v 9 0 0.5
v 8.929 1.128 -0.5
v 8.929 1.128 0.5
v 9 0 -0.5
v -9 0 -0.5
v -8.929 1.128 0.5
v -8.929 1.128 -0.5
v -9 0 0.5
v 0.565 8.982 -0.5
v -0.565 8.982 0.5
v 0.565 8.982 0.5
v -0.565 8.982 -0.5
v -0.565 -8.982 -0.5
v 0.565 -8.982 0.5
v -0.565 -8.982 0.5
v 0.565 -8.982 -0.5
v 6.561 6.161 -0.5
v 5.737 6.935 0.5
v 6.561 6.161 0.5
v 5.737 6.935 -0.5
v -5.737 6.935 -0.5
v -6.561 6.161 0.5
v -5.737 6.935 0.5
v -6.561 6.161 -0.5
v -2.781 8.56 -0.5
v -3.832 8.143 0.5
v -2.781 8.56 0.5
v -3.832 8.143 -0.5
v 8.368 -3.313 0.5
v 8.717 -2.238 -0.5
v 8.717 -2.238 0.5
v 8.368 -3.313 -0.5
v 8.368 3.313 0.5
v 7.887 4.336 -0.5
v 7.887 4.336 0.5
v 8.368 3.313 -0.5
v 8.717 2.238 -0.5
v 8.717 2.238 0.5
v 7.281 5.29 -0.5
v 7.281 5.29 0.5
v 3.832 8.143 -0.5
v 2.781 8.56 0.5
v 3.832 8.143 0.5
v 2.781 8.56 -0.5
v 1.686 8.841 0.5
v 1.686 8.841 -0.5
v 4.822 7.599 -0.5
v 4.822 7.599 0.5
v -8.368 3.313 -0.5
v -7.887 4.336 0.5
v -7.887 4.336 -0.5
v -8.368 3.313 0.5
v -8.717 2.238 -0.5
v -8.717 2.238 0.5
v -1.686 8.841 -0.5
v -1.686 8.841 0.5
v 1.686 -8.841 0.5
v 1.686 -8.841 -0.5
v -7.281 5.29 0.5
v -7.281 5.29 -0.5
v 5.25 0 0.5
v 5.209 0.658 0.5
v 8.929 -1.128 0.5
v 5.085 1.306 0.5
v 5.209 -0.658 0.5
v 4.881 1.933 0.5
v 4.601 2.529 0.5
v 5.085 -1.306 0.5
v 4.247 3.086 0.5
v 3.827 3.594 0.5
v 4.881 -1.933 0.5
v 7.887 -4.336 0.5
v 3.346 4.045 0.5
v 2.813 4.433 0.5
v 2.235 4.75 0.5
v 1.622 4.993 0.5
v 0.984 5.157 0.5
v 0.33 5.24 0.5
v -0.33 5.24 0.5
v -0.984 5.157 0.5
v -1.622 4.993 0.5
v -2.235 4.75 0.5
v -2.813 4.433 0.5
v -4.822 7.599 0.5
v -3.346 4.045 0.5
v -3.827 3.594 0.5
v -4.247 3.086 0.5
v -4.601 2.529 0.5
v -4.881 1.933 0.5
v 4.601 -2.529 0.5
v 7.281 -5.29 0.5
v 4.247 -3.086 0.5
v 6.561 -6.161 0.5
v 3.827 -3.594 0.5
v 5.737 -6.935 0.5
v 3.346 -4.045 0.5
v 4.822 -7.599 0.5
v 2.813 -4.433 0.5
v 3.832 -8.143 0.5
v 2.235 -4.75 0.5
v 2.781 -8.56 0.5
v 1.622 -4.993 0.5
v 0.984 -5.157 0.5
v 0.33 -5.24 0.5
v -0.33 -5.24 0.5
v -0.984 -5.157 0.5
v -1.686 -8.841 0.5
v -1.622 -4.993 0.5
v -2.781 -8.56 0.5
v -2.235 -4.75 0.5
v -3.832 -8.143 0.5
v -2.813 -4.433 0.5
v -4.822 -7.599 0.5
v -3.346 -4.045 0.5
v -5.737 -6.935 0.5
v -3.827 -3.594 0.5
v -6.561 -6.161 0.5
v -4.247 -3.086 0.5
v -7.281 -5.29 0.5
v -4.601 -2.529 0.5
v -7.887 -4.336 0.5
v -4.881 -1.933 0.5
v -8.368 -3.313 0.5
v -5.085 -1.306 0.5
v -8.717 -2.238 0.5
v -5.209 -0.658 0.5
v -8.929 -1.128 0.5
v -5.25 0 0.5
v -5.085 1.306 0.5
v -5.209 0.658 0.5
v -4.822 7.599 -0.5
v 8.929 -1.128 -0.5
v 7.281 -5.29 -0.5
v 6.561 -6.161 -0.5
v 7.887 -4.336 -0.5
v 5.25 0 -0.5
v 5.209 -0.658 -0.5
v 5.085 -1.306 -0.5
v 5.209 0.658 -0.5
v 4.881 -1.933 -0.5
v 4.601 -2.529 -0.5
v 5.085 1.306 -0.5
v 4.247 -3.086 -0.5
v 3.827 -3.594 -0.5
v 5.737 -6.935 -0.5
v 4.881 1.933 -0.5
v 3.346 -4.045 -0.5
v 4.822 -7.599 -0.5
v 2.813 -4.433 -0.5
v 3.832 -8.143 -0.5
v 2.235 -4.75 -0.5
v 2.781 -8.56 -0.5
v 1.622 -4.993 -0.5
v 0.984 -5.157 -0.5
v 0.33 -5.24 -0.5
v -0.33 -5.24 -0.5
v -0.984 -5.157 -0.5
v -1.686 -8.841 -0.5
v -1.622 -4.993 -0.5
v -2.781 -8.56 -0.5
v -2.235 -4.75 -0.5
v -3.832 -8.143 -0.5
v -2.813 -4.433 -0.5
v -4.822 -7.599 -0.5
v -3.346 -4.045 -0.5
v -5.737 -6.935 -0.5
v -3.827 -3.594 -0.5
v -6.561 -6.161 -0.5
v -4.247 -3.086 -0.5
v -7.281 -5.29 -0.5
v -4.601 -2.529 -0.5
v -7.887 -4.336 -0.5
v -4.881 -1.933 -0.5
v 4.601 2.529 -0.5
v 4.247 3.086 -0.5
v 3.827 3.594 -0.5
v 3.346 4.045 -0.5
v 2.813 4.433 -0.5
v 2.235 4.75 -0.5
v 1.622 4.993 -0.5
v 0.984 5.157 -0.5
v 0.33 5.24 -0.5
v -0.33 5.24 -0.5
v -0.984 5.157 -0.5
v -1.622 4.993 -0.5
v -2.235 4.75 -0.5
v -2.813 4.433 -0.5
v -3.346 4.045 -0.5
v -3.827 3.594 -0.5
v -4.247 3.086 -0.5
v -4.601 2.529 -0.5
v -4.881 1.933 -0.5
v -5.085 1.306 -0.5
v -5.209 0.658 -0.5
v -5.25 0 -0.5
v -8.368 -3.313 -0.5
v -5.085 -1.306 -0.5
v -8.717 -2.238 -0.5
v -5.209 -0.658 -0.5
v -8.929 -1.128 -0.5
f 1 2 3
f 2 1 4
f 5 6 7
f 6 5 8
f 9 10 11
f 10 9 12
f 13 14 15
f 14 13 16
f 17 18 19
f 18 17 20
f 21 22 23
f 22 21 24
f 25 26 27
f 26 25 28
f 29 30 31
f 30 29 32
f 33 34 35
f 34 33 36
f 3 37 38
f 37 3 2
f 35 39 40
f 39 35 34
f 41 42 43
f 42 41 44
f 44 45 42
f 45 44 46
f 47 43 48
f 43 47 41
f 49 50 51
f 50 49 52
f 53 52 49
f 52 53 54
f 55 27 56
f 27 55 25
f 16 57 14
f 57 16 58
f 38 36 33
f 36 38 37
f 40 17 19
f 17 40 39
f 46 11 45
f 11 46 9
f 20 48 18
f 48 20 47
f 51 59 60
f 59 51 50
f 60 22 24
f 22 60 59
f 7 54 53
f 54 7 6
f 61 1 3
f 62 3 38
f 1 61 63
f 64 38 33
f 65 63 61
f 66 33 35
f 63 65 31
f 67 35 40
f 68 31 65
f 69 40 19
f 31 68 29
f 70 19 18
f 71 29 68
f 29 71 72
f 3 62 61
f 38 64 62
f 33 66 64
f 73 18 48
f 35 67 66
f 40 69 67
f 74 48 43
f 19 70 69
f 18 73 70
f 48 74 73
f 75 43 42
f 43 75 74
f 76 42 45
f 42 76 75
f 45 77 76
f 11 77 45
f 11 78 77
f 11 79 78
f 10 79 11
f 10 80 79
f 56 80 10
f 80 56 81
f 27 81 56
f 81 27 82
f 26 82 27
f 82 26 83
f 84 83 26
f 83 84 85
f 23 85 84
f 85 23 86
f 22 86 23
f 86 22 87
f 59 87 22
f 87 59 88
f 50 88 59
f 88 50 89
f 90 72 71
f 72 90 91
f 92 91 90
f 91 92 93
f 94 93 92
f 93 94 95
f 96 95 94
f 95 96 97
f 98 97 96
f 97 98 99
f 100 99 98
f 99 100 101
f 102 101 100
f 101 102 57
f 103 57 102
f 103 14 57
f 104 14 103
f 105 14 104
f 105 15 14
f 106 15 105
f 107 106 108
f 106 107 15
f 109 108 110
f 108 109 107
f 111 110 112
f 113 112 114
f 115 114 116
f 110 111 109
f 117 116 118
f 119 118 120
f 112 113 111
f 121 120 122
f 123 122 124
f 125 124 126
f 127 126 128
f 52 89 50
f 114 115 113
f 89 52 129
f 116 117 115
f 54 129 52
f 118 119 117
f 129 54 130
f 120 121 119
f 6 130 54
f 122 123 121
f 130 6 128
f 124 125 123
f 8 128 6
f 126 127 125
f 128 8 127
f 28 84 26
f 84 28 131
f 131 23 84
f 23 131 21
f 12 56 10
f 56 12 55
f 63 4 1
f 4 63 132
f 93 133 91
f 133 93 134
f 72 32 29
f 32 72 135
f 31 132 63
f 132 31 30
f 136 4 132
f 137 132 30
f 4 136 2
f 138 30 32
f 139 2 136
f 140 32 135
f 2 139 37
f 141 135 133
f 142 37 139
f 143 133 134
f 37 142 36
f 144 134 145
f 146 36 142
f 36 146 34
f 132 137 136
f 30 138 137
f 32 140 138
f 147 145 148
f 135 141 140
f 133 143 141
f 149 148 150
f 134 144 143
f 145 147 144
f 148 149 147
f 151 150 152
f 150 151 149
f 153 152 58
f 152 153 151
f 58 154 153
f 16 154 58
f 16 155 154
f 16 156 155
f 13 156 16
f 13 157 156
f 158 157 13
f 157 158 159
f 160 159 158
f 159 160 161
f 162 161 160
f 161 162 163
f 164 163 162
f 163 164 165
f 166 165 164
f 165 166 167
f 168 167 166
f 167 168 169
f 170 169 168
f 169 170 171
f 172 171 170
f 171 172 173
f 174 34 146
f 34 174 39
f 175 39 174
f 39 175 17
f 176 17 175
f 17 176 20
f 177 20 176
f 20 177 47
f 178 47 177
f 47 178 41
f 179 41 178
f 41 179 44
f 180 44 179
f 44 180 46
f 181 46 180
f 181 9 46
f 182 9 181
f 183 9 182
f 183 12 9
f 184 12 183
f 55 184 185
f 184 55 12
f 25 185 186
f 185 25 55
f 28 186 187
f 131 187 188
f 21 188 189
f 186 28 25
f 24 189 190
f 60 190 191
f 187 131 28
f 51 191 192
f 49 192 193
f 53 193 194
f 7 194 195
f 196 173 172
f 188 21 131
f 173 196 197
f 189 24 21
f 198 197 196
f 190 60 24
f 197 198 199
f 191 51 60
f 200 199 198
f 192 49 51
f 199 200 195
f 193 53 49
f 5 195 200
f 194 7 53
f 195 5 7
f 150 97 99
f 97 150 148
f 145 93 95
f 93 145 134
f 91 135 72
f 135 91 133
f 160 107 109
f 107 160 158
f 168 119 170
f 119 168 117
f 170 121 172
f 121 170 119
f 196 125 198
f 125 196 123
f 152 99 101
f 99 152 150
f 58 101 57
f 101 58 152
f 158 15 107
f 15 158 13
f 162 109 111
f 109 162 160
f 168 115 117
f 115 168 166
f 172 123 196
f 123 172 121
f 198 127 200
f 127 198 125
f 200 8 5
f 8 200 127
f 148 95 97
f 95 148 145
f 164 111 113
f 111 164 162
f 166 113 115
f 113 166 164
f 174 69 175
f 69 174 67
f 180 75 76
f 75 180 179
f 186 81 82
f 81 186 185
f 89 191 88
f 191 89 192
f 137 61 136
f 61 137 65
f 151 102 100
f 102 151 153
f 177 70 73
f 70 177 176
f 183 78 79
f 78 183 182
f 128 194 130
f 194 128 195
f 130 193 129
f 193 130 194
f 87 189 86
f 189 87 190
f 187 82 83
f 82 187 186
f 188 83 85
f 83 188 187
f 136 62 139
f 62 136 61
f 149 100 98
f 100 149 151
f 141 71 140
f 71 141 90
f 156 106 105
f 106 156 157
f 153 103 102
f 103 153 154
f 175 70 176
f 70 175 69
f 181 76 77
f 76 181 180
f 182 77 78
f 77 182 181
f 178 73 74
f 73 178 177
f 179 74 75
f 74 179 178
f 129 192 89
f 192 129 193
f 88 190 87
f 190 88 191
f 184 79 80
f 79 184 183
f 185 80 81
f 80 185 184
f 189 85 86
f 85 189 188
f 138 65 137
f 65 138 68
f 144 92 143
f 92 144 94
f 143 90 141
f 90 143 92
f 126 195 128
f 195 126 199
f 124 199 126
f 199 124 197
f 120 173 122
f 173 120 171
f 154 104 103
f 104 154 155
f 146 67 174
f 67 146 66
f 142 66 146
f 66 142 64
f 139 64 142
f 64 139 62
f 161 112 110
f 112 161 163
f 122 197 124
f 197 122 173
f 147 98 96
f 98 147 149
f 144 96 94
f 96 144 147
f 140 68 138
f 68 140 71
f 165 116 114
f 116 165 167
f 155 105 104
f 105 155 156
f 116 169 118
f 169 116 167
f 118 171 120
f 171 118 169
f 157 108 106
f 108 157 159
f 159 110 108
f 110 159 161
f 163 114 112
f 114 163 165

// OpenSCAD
$fn = 50;


difference() {
	union() {
		translate(v = [0, 0, -0.5000000000]) {
			cylinder(h = 1, r = 9.0000000000);
		}
	}
	union() {
		translate(v = [0, 0, -100.0000000000]) {
			cylinder(h = 200, r = 5.2500000000);
		}
	}
}
